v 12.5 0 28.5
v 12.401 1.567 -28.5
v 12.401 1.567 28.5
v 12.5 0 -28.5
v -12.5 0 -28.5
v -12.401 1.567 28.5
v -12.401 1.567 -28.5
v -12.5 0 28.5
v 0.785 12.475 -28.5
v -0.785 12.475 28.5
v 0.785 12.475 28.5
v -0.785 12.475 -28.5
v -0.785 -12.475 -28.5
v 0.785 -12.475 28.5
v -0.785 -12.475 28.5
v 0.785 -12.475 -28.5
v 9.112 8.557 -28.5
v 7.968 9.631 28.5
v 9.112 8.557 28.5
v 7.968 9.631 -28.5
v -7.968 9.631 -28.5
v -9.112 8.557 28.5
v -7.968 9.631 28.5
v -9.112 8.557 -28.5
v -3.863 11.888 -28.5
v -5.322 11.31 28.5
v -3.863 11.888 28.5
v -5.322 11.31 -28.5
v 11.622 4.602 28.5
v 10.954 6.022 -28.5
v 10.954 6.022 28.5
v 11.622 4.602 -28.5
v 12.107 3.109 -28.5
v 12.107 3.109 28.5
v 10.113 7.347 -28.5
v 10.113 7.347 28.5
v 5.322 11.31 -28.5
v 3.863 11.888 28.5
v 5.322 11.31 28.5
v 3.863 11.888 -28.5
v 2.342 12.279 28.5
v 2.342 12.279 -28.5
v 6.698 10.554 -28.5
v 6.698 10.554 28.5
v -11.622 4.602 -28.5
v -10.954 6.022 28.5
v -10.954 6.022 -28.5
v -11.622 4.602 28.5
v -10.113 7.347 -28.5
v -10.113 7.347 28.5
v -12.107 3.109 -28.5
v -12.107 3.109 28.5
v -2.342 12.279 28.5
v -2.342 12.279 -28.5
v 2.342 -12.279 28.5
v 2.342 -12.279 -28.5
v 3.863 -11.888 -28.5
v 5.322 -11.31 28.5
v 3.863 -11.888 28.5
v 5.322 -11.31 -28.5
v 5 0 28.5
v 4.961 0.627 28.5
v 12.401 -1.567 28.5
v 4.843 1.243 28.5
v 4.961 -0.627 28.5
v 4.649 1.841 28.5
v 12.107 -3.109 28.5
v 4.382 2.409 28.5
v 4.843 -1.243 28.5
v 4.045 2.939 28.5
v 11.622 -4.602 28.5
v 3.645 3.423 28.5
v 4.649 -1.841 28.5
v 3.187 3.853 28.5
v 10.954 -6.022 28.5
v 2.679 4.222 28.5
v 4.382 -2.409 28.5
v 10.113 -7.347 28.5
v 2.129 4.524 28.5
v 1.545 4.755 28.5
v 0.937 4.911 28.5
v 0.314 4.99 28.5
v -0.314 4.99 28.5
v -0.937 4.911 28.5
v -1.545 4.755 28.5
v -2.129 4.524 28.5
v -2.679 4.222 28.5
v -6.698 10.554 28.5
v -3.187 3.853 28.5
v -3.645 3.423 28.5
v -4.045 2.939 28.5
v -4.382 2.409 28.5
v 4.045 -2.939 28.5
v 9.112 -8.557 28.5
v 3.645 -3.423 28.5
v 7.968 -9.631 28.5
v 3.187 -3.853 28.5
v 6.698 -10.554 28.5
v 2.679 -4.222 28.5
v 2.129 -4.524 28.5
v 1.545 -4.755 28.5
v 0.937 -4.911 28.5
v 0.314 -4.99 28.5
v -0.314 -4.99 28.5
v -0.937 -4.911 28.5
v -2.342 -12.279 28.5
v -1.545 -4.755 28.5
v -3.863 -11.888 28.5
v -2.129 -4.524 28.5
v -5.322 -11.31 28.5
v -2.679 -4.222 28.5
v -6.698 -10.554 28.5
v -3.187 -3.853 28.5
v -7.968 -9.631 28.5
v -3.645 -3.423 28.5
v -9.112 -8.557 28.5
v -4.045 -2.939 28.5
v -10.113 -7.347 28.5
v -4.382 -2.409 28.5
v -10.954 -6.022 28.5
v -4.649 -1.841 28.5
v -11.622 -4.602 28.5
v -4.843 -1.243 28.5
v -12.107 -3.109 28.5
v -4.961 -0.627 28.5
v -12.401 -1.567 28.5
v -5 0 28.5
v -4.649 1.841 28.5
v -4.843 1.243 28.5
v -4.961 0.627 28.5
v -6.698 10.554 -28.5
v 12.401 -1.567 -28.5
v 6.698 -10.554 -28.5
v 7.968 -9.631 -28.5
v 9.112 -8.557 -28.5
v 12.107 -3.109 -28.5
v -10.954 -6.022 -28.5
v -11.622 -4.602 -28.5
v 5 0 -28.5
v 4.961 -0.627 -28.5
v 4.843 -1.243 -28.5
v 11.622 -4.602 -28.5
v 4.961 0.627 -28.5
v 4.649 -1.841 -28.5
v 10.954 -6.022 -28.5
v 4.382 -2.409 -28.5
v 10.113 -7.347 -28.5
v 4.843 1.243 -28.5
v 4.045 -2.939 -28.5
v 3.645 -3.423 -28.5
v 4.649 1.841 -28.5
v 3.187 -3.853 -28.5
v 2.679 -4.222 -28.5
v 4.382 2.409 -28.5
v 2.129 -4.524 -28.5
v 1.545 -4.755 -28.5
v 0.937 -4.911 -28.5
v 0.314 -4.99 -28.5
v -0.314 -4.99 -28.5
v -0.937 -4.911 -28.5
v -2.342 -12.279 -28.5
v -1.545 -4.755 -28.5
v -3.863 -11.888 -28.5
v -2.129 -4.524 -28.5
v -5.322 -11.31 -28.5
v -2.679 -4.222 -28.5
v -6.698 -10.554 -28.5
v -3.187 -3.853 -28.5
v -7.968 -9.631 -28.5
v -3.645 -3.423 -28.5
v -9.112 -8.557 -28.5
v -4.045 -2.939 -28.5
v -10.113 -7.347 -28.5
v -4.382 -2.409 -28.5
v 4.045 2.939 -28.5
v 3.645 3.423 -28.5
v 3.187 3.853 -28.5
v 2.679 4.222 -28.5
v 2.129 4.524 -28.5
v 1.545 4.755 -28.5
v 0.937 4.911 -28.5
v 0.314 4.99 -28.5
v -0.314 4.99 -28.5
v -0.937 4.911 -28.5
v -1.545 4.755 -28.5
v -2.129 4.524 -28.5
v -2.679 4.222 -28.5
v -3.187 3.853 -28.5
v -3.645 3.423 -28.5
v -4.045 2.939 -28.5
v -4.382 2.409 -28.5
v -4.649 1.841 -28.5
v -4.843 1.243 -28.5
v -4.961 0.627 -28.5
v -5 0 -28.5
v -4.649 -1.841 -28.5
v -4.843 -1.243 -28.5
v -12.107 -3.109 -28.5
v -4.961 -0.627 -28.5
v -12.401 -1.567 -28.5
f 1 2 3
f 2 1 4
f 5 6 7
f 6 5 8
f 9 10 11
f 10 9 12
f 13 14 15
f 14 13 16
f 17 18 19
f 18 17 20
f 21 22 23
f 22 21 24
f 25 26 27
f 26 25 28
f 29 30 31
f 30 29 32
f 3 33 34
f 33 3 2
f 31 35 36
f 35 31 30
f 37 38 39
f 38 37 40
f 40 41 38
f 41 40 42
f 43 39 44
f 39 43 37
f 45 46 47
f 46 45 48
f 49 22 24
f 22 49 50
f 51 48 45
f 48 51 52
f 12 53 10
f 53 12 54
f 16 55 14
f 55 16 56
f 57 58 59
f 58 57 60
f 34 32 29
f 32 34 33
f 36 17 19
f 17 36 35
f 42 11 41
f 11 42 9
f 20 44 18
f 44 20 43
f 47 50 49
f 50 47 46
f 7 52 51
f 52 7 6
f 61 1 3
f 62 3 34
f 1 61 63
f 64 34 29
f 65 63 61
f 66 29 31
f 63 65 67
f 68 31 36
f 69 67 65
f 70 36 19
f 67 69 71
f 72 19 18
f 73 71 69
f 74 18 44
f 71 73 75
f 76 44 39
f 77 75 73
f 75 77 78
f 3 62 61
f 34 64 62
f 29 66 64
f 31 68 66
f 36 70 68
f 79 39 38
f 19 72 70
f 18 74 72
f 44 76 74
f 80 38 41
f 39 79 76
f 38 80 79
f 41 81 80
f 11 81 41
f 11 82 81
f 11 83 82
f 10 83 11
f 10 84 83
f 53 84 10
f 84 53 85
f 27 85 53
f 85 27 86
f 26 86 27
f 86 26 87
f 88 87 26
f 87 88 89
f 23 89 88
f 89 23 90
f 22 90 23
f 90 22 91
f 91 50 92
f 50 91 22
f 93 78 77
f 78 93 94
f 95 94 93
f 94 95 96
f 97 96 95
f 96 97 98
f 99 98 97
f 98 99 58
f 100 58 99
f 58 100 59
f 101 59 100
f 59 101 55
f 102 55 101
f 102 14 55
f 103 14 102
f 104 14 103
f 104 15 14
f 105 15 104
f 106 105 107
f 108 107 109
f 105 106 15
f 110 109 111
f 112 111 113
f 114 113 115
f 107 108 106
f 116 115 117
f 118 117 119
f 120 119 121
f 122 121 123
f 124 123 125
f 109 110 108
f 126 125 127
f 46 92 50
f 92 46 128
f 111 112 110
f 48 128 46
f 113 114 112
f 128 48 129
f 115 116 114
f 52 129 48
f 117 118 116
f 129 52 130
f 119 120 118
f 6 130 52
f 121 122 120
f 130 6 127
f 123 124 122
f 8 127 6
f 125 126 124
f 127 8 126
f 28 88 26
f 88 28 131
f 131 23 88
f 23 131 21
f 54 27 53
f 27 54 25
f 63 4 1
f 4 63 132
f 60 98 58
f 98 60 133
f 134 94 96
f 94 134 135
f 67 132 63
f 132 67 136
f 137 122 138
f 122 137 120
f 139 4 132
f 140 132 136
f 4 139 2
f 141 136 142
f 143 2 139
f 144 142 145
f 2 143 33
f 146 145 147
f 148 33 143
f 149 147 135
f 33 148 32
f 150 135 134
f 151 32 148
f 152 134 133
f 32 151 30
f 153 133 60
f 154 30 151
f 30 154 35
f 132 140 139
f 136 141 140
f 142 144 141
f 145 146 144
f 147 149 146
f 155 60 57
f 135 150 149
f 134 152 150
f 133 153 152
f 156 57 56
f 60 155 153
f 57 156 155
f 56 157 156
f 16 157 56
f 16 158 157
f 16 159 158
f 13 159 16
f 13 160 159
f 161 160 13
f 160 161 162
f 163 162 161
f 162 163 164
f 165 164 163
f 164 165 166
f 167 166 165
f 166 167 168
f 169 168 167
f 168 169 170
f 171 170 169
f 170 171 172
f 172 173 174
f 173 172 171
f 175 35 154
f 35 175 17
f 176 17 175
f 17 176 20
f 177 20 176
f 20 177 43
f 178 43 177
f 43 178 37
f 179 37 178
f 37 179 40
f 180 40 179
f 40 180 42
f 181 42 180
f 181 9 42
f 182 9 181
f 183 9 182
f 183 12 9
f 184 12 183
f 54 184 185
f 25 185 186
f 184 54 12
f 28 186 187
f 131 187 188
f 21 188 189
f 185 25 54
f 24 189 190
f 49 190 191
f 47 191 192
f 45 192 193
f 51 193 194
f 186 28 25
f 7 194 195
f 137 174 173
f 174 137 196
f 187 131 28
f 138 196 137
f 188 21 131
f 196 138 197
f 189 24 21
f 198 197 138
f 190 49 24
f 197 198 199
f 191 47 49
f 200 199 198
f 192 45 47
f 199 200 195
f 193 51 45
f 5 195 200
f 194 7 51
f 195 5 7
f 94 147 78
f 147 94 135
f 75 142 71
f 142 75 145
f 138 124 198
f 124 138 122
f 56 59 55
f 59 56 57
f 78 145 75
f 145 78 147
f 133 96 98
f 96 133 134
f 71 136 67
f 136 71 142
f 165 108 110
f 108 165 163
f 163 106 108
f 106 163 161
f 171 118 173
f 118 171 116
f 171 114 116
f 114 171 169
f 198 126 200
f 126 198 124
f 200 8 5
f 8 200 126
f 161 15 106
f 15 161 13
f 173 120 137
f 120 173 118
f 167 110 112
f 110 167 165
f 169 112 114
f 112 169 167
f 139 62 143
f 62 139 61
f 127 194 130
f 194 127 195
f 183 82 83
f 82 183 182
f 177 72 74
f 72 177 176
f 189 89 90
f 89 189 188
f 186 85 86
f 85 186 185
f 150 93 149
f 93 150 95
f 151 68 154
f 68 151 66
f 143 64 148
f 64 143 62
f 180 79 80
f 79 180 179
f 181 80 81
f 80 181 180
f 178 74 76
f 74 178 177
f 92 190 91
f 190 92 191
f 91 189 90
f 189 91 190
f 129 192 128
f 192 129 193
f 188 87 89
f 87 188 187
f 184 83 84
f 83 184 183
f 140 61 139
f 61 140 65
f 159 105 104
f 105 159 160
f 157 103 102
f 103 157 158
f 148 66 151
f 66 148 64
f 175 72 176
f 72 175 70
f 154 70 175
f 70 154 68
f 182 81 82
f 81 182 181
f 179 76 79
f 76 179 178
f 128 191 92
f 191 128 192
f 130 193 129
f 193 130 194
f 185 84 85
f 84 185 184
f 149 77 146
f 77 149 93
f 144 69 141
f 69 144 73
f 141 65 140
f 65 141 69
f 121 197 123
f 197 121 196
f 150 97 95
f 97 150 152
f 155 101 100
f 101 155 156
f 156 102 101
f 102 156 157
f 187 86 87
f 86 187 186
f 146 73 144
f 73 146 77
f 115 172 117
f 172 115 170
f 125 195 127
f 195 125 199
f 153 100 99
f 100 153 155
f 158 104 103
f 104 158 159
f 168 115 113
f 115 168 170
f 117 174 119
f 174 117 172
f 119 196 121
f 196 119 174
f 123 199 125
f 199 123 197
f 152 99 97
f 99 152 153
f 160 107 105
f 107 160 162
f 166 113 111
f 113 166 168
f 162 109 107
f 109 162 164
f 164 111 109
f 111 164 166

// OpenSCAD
$fn = 50;


difference() {
	union() {
		translate(v = [0, 0, -28.5000000000]) {
			cylinder(h = 57, r = 12.5000000000);
		}
	}
	union() {
		translate(v = [0, 0, -100.0000000000]) {
			cylinder(h = 200, r = 5);
		}
	}
}
